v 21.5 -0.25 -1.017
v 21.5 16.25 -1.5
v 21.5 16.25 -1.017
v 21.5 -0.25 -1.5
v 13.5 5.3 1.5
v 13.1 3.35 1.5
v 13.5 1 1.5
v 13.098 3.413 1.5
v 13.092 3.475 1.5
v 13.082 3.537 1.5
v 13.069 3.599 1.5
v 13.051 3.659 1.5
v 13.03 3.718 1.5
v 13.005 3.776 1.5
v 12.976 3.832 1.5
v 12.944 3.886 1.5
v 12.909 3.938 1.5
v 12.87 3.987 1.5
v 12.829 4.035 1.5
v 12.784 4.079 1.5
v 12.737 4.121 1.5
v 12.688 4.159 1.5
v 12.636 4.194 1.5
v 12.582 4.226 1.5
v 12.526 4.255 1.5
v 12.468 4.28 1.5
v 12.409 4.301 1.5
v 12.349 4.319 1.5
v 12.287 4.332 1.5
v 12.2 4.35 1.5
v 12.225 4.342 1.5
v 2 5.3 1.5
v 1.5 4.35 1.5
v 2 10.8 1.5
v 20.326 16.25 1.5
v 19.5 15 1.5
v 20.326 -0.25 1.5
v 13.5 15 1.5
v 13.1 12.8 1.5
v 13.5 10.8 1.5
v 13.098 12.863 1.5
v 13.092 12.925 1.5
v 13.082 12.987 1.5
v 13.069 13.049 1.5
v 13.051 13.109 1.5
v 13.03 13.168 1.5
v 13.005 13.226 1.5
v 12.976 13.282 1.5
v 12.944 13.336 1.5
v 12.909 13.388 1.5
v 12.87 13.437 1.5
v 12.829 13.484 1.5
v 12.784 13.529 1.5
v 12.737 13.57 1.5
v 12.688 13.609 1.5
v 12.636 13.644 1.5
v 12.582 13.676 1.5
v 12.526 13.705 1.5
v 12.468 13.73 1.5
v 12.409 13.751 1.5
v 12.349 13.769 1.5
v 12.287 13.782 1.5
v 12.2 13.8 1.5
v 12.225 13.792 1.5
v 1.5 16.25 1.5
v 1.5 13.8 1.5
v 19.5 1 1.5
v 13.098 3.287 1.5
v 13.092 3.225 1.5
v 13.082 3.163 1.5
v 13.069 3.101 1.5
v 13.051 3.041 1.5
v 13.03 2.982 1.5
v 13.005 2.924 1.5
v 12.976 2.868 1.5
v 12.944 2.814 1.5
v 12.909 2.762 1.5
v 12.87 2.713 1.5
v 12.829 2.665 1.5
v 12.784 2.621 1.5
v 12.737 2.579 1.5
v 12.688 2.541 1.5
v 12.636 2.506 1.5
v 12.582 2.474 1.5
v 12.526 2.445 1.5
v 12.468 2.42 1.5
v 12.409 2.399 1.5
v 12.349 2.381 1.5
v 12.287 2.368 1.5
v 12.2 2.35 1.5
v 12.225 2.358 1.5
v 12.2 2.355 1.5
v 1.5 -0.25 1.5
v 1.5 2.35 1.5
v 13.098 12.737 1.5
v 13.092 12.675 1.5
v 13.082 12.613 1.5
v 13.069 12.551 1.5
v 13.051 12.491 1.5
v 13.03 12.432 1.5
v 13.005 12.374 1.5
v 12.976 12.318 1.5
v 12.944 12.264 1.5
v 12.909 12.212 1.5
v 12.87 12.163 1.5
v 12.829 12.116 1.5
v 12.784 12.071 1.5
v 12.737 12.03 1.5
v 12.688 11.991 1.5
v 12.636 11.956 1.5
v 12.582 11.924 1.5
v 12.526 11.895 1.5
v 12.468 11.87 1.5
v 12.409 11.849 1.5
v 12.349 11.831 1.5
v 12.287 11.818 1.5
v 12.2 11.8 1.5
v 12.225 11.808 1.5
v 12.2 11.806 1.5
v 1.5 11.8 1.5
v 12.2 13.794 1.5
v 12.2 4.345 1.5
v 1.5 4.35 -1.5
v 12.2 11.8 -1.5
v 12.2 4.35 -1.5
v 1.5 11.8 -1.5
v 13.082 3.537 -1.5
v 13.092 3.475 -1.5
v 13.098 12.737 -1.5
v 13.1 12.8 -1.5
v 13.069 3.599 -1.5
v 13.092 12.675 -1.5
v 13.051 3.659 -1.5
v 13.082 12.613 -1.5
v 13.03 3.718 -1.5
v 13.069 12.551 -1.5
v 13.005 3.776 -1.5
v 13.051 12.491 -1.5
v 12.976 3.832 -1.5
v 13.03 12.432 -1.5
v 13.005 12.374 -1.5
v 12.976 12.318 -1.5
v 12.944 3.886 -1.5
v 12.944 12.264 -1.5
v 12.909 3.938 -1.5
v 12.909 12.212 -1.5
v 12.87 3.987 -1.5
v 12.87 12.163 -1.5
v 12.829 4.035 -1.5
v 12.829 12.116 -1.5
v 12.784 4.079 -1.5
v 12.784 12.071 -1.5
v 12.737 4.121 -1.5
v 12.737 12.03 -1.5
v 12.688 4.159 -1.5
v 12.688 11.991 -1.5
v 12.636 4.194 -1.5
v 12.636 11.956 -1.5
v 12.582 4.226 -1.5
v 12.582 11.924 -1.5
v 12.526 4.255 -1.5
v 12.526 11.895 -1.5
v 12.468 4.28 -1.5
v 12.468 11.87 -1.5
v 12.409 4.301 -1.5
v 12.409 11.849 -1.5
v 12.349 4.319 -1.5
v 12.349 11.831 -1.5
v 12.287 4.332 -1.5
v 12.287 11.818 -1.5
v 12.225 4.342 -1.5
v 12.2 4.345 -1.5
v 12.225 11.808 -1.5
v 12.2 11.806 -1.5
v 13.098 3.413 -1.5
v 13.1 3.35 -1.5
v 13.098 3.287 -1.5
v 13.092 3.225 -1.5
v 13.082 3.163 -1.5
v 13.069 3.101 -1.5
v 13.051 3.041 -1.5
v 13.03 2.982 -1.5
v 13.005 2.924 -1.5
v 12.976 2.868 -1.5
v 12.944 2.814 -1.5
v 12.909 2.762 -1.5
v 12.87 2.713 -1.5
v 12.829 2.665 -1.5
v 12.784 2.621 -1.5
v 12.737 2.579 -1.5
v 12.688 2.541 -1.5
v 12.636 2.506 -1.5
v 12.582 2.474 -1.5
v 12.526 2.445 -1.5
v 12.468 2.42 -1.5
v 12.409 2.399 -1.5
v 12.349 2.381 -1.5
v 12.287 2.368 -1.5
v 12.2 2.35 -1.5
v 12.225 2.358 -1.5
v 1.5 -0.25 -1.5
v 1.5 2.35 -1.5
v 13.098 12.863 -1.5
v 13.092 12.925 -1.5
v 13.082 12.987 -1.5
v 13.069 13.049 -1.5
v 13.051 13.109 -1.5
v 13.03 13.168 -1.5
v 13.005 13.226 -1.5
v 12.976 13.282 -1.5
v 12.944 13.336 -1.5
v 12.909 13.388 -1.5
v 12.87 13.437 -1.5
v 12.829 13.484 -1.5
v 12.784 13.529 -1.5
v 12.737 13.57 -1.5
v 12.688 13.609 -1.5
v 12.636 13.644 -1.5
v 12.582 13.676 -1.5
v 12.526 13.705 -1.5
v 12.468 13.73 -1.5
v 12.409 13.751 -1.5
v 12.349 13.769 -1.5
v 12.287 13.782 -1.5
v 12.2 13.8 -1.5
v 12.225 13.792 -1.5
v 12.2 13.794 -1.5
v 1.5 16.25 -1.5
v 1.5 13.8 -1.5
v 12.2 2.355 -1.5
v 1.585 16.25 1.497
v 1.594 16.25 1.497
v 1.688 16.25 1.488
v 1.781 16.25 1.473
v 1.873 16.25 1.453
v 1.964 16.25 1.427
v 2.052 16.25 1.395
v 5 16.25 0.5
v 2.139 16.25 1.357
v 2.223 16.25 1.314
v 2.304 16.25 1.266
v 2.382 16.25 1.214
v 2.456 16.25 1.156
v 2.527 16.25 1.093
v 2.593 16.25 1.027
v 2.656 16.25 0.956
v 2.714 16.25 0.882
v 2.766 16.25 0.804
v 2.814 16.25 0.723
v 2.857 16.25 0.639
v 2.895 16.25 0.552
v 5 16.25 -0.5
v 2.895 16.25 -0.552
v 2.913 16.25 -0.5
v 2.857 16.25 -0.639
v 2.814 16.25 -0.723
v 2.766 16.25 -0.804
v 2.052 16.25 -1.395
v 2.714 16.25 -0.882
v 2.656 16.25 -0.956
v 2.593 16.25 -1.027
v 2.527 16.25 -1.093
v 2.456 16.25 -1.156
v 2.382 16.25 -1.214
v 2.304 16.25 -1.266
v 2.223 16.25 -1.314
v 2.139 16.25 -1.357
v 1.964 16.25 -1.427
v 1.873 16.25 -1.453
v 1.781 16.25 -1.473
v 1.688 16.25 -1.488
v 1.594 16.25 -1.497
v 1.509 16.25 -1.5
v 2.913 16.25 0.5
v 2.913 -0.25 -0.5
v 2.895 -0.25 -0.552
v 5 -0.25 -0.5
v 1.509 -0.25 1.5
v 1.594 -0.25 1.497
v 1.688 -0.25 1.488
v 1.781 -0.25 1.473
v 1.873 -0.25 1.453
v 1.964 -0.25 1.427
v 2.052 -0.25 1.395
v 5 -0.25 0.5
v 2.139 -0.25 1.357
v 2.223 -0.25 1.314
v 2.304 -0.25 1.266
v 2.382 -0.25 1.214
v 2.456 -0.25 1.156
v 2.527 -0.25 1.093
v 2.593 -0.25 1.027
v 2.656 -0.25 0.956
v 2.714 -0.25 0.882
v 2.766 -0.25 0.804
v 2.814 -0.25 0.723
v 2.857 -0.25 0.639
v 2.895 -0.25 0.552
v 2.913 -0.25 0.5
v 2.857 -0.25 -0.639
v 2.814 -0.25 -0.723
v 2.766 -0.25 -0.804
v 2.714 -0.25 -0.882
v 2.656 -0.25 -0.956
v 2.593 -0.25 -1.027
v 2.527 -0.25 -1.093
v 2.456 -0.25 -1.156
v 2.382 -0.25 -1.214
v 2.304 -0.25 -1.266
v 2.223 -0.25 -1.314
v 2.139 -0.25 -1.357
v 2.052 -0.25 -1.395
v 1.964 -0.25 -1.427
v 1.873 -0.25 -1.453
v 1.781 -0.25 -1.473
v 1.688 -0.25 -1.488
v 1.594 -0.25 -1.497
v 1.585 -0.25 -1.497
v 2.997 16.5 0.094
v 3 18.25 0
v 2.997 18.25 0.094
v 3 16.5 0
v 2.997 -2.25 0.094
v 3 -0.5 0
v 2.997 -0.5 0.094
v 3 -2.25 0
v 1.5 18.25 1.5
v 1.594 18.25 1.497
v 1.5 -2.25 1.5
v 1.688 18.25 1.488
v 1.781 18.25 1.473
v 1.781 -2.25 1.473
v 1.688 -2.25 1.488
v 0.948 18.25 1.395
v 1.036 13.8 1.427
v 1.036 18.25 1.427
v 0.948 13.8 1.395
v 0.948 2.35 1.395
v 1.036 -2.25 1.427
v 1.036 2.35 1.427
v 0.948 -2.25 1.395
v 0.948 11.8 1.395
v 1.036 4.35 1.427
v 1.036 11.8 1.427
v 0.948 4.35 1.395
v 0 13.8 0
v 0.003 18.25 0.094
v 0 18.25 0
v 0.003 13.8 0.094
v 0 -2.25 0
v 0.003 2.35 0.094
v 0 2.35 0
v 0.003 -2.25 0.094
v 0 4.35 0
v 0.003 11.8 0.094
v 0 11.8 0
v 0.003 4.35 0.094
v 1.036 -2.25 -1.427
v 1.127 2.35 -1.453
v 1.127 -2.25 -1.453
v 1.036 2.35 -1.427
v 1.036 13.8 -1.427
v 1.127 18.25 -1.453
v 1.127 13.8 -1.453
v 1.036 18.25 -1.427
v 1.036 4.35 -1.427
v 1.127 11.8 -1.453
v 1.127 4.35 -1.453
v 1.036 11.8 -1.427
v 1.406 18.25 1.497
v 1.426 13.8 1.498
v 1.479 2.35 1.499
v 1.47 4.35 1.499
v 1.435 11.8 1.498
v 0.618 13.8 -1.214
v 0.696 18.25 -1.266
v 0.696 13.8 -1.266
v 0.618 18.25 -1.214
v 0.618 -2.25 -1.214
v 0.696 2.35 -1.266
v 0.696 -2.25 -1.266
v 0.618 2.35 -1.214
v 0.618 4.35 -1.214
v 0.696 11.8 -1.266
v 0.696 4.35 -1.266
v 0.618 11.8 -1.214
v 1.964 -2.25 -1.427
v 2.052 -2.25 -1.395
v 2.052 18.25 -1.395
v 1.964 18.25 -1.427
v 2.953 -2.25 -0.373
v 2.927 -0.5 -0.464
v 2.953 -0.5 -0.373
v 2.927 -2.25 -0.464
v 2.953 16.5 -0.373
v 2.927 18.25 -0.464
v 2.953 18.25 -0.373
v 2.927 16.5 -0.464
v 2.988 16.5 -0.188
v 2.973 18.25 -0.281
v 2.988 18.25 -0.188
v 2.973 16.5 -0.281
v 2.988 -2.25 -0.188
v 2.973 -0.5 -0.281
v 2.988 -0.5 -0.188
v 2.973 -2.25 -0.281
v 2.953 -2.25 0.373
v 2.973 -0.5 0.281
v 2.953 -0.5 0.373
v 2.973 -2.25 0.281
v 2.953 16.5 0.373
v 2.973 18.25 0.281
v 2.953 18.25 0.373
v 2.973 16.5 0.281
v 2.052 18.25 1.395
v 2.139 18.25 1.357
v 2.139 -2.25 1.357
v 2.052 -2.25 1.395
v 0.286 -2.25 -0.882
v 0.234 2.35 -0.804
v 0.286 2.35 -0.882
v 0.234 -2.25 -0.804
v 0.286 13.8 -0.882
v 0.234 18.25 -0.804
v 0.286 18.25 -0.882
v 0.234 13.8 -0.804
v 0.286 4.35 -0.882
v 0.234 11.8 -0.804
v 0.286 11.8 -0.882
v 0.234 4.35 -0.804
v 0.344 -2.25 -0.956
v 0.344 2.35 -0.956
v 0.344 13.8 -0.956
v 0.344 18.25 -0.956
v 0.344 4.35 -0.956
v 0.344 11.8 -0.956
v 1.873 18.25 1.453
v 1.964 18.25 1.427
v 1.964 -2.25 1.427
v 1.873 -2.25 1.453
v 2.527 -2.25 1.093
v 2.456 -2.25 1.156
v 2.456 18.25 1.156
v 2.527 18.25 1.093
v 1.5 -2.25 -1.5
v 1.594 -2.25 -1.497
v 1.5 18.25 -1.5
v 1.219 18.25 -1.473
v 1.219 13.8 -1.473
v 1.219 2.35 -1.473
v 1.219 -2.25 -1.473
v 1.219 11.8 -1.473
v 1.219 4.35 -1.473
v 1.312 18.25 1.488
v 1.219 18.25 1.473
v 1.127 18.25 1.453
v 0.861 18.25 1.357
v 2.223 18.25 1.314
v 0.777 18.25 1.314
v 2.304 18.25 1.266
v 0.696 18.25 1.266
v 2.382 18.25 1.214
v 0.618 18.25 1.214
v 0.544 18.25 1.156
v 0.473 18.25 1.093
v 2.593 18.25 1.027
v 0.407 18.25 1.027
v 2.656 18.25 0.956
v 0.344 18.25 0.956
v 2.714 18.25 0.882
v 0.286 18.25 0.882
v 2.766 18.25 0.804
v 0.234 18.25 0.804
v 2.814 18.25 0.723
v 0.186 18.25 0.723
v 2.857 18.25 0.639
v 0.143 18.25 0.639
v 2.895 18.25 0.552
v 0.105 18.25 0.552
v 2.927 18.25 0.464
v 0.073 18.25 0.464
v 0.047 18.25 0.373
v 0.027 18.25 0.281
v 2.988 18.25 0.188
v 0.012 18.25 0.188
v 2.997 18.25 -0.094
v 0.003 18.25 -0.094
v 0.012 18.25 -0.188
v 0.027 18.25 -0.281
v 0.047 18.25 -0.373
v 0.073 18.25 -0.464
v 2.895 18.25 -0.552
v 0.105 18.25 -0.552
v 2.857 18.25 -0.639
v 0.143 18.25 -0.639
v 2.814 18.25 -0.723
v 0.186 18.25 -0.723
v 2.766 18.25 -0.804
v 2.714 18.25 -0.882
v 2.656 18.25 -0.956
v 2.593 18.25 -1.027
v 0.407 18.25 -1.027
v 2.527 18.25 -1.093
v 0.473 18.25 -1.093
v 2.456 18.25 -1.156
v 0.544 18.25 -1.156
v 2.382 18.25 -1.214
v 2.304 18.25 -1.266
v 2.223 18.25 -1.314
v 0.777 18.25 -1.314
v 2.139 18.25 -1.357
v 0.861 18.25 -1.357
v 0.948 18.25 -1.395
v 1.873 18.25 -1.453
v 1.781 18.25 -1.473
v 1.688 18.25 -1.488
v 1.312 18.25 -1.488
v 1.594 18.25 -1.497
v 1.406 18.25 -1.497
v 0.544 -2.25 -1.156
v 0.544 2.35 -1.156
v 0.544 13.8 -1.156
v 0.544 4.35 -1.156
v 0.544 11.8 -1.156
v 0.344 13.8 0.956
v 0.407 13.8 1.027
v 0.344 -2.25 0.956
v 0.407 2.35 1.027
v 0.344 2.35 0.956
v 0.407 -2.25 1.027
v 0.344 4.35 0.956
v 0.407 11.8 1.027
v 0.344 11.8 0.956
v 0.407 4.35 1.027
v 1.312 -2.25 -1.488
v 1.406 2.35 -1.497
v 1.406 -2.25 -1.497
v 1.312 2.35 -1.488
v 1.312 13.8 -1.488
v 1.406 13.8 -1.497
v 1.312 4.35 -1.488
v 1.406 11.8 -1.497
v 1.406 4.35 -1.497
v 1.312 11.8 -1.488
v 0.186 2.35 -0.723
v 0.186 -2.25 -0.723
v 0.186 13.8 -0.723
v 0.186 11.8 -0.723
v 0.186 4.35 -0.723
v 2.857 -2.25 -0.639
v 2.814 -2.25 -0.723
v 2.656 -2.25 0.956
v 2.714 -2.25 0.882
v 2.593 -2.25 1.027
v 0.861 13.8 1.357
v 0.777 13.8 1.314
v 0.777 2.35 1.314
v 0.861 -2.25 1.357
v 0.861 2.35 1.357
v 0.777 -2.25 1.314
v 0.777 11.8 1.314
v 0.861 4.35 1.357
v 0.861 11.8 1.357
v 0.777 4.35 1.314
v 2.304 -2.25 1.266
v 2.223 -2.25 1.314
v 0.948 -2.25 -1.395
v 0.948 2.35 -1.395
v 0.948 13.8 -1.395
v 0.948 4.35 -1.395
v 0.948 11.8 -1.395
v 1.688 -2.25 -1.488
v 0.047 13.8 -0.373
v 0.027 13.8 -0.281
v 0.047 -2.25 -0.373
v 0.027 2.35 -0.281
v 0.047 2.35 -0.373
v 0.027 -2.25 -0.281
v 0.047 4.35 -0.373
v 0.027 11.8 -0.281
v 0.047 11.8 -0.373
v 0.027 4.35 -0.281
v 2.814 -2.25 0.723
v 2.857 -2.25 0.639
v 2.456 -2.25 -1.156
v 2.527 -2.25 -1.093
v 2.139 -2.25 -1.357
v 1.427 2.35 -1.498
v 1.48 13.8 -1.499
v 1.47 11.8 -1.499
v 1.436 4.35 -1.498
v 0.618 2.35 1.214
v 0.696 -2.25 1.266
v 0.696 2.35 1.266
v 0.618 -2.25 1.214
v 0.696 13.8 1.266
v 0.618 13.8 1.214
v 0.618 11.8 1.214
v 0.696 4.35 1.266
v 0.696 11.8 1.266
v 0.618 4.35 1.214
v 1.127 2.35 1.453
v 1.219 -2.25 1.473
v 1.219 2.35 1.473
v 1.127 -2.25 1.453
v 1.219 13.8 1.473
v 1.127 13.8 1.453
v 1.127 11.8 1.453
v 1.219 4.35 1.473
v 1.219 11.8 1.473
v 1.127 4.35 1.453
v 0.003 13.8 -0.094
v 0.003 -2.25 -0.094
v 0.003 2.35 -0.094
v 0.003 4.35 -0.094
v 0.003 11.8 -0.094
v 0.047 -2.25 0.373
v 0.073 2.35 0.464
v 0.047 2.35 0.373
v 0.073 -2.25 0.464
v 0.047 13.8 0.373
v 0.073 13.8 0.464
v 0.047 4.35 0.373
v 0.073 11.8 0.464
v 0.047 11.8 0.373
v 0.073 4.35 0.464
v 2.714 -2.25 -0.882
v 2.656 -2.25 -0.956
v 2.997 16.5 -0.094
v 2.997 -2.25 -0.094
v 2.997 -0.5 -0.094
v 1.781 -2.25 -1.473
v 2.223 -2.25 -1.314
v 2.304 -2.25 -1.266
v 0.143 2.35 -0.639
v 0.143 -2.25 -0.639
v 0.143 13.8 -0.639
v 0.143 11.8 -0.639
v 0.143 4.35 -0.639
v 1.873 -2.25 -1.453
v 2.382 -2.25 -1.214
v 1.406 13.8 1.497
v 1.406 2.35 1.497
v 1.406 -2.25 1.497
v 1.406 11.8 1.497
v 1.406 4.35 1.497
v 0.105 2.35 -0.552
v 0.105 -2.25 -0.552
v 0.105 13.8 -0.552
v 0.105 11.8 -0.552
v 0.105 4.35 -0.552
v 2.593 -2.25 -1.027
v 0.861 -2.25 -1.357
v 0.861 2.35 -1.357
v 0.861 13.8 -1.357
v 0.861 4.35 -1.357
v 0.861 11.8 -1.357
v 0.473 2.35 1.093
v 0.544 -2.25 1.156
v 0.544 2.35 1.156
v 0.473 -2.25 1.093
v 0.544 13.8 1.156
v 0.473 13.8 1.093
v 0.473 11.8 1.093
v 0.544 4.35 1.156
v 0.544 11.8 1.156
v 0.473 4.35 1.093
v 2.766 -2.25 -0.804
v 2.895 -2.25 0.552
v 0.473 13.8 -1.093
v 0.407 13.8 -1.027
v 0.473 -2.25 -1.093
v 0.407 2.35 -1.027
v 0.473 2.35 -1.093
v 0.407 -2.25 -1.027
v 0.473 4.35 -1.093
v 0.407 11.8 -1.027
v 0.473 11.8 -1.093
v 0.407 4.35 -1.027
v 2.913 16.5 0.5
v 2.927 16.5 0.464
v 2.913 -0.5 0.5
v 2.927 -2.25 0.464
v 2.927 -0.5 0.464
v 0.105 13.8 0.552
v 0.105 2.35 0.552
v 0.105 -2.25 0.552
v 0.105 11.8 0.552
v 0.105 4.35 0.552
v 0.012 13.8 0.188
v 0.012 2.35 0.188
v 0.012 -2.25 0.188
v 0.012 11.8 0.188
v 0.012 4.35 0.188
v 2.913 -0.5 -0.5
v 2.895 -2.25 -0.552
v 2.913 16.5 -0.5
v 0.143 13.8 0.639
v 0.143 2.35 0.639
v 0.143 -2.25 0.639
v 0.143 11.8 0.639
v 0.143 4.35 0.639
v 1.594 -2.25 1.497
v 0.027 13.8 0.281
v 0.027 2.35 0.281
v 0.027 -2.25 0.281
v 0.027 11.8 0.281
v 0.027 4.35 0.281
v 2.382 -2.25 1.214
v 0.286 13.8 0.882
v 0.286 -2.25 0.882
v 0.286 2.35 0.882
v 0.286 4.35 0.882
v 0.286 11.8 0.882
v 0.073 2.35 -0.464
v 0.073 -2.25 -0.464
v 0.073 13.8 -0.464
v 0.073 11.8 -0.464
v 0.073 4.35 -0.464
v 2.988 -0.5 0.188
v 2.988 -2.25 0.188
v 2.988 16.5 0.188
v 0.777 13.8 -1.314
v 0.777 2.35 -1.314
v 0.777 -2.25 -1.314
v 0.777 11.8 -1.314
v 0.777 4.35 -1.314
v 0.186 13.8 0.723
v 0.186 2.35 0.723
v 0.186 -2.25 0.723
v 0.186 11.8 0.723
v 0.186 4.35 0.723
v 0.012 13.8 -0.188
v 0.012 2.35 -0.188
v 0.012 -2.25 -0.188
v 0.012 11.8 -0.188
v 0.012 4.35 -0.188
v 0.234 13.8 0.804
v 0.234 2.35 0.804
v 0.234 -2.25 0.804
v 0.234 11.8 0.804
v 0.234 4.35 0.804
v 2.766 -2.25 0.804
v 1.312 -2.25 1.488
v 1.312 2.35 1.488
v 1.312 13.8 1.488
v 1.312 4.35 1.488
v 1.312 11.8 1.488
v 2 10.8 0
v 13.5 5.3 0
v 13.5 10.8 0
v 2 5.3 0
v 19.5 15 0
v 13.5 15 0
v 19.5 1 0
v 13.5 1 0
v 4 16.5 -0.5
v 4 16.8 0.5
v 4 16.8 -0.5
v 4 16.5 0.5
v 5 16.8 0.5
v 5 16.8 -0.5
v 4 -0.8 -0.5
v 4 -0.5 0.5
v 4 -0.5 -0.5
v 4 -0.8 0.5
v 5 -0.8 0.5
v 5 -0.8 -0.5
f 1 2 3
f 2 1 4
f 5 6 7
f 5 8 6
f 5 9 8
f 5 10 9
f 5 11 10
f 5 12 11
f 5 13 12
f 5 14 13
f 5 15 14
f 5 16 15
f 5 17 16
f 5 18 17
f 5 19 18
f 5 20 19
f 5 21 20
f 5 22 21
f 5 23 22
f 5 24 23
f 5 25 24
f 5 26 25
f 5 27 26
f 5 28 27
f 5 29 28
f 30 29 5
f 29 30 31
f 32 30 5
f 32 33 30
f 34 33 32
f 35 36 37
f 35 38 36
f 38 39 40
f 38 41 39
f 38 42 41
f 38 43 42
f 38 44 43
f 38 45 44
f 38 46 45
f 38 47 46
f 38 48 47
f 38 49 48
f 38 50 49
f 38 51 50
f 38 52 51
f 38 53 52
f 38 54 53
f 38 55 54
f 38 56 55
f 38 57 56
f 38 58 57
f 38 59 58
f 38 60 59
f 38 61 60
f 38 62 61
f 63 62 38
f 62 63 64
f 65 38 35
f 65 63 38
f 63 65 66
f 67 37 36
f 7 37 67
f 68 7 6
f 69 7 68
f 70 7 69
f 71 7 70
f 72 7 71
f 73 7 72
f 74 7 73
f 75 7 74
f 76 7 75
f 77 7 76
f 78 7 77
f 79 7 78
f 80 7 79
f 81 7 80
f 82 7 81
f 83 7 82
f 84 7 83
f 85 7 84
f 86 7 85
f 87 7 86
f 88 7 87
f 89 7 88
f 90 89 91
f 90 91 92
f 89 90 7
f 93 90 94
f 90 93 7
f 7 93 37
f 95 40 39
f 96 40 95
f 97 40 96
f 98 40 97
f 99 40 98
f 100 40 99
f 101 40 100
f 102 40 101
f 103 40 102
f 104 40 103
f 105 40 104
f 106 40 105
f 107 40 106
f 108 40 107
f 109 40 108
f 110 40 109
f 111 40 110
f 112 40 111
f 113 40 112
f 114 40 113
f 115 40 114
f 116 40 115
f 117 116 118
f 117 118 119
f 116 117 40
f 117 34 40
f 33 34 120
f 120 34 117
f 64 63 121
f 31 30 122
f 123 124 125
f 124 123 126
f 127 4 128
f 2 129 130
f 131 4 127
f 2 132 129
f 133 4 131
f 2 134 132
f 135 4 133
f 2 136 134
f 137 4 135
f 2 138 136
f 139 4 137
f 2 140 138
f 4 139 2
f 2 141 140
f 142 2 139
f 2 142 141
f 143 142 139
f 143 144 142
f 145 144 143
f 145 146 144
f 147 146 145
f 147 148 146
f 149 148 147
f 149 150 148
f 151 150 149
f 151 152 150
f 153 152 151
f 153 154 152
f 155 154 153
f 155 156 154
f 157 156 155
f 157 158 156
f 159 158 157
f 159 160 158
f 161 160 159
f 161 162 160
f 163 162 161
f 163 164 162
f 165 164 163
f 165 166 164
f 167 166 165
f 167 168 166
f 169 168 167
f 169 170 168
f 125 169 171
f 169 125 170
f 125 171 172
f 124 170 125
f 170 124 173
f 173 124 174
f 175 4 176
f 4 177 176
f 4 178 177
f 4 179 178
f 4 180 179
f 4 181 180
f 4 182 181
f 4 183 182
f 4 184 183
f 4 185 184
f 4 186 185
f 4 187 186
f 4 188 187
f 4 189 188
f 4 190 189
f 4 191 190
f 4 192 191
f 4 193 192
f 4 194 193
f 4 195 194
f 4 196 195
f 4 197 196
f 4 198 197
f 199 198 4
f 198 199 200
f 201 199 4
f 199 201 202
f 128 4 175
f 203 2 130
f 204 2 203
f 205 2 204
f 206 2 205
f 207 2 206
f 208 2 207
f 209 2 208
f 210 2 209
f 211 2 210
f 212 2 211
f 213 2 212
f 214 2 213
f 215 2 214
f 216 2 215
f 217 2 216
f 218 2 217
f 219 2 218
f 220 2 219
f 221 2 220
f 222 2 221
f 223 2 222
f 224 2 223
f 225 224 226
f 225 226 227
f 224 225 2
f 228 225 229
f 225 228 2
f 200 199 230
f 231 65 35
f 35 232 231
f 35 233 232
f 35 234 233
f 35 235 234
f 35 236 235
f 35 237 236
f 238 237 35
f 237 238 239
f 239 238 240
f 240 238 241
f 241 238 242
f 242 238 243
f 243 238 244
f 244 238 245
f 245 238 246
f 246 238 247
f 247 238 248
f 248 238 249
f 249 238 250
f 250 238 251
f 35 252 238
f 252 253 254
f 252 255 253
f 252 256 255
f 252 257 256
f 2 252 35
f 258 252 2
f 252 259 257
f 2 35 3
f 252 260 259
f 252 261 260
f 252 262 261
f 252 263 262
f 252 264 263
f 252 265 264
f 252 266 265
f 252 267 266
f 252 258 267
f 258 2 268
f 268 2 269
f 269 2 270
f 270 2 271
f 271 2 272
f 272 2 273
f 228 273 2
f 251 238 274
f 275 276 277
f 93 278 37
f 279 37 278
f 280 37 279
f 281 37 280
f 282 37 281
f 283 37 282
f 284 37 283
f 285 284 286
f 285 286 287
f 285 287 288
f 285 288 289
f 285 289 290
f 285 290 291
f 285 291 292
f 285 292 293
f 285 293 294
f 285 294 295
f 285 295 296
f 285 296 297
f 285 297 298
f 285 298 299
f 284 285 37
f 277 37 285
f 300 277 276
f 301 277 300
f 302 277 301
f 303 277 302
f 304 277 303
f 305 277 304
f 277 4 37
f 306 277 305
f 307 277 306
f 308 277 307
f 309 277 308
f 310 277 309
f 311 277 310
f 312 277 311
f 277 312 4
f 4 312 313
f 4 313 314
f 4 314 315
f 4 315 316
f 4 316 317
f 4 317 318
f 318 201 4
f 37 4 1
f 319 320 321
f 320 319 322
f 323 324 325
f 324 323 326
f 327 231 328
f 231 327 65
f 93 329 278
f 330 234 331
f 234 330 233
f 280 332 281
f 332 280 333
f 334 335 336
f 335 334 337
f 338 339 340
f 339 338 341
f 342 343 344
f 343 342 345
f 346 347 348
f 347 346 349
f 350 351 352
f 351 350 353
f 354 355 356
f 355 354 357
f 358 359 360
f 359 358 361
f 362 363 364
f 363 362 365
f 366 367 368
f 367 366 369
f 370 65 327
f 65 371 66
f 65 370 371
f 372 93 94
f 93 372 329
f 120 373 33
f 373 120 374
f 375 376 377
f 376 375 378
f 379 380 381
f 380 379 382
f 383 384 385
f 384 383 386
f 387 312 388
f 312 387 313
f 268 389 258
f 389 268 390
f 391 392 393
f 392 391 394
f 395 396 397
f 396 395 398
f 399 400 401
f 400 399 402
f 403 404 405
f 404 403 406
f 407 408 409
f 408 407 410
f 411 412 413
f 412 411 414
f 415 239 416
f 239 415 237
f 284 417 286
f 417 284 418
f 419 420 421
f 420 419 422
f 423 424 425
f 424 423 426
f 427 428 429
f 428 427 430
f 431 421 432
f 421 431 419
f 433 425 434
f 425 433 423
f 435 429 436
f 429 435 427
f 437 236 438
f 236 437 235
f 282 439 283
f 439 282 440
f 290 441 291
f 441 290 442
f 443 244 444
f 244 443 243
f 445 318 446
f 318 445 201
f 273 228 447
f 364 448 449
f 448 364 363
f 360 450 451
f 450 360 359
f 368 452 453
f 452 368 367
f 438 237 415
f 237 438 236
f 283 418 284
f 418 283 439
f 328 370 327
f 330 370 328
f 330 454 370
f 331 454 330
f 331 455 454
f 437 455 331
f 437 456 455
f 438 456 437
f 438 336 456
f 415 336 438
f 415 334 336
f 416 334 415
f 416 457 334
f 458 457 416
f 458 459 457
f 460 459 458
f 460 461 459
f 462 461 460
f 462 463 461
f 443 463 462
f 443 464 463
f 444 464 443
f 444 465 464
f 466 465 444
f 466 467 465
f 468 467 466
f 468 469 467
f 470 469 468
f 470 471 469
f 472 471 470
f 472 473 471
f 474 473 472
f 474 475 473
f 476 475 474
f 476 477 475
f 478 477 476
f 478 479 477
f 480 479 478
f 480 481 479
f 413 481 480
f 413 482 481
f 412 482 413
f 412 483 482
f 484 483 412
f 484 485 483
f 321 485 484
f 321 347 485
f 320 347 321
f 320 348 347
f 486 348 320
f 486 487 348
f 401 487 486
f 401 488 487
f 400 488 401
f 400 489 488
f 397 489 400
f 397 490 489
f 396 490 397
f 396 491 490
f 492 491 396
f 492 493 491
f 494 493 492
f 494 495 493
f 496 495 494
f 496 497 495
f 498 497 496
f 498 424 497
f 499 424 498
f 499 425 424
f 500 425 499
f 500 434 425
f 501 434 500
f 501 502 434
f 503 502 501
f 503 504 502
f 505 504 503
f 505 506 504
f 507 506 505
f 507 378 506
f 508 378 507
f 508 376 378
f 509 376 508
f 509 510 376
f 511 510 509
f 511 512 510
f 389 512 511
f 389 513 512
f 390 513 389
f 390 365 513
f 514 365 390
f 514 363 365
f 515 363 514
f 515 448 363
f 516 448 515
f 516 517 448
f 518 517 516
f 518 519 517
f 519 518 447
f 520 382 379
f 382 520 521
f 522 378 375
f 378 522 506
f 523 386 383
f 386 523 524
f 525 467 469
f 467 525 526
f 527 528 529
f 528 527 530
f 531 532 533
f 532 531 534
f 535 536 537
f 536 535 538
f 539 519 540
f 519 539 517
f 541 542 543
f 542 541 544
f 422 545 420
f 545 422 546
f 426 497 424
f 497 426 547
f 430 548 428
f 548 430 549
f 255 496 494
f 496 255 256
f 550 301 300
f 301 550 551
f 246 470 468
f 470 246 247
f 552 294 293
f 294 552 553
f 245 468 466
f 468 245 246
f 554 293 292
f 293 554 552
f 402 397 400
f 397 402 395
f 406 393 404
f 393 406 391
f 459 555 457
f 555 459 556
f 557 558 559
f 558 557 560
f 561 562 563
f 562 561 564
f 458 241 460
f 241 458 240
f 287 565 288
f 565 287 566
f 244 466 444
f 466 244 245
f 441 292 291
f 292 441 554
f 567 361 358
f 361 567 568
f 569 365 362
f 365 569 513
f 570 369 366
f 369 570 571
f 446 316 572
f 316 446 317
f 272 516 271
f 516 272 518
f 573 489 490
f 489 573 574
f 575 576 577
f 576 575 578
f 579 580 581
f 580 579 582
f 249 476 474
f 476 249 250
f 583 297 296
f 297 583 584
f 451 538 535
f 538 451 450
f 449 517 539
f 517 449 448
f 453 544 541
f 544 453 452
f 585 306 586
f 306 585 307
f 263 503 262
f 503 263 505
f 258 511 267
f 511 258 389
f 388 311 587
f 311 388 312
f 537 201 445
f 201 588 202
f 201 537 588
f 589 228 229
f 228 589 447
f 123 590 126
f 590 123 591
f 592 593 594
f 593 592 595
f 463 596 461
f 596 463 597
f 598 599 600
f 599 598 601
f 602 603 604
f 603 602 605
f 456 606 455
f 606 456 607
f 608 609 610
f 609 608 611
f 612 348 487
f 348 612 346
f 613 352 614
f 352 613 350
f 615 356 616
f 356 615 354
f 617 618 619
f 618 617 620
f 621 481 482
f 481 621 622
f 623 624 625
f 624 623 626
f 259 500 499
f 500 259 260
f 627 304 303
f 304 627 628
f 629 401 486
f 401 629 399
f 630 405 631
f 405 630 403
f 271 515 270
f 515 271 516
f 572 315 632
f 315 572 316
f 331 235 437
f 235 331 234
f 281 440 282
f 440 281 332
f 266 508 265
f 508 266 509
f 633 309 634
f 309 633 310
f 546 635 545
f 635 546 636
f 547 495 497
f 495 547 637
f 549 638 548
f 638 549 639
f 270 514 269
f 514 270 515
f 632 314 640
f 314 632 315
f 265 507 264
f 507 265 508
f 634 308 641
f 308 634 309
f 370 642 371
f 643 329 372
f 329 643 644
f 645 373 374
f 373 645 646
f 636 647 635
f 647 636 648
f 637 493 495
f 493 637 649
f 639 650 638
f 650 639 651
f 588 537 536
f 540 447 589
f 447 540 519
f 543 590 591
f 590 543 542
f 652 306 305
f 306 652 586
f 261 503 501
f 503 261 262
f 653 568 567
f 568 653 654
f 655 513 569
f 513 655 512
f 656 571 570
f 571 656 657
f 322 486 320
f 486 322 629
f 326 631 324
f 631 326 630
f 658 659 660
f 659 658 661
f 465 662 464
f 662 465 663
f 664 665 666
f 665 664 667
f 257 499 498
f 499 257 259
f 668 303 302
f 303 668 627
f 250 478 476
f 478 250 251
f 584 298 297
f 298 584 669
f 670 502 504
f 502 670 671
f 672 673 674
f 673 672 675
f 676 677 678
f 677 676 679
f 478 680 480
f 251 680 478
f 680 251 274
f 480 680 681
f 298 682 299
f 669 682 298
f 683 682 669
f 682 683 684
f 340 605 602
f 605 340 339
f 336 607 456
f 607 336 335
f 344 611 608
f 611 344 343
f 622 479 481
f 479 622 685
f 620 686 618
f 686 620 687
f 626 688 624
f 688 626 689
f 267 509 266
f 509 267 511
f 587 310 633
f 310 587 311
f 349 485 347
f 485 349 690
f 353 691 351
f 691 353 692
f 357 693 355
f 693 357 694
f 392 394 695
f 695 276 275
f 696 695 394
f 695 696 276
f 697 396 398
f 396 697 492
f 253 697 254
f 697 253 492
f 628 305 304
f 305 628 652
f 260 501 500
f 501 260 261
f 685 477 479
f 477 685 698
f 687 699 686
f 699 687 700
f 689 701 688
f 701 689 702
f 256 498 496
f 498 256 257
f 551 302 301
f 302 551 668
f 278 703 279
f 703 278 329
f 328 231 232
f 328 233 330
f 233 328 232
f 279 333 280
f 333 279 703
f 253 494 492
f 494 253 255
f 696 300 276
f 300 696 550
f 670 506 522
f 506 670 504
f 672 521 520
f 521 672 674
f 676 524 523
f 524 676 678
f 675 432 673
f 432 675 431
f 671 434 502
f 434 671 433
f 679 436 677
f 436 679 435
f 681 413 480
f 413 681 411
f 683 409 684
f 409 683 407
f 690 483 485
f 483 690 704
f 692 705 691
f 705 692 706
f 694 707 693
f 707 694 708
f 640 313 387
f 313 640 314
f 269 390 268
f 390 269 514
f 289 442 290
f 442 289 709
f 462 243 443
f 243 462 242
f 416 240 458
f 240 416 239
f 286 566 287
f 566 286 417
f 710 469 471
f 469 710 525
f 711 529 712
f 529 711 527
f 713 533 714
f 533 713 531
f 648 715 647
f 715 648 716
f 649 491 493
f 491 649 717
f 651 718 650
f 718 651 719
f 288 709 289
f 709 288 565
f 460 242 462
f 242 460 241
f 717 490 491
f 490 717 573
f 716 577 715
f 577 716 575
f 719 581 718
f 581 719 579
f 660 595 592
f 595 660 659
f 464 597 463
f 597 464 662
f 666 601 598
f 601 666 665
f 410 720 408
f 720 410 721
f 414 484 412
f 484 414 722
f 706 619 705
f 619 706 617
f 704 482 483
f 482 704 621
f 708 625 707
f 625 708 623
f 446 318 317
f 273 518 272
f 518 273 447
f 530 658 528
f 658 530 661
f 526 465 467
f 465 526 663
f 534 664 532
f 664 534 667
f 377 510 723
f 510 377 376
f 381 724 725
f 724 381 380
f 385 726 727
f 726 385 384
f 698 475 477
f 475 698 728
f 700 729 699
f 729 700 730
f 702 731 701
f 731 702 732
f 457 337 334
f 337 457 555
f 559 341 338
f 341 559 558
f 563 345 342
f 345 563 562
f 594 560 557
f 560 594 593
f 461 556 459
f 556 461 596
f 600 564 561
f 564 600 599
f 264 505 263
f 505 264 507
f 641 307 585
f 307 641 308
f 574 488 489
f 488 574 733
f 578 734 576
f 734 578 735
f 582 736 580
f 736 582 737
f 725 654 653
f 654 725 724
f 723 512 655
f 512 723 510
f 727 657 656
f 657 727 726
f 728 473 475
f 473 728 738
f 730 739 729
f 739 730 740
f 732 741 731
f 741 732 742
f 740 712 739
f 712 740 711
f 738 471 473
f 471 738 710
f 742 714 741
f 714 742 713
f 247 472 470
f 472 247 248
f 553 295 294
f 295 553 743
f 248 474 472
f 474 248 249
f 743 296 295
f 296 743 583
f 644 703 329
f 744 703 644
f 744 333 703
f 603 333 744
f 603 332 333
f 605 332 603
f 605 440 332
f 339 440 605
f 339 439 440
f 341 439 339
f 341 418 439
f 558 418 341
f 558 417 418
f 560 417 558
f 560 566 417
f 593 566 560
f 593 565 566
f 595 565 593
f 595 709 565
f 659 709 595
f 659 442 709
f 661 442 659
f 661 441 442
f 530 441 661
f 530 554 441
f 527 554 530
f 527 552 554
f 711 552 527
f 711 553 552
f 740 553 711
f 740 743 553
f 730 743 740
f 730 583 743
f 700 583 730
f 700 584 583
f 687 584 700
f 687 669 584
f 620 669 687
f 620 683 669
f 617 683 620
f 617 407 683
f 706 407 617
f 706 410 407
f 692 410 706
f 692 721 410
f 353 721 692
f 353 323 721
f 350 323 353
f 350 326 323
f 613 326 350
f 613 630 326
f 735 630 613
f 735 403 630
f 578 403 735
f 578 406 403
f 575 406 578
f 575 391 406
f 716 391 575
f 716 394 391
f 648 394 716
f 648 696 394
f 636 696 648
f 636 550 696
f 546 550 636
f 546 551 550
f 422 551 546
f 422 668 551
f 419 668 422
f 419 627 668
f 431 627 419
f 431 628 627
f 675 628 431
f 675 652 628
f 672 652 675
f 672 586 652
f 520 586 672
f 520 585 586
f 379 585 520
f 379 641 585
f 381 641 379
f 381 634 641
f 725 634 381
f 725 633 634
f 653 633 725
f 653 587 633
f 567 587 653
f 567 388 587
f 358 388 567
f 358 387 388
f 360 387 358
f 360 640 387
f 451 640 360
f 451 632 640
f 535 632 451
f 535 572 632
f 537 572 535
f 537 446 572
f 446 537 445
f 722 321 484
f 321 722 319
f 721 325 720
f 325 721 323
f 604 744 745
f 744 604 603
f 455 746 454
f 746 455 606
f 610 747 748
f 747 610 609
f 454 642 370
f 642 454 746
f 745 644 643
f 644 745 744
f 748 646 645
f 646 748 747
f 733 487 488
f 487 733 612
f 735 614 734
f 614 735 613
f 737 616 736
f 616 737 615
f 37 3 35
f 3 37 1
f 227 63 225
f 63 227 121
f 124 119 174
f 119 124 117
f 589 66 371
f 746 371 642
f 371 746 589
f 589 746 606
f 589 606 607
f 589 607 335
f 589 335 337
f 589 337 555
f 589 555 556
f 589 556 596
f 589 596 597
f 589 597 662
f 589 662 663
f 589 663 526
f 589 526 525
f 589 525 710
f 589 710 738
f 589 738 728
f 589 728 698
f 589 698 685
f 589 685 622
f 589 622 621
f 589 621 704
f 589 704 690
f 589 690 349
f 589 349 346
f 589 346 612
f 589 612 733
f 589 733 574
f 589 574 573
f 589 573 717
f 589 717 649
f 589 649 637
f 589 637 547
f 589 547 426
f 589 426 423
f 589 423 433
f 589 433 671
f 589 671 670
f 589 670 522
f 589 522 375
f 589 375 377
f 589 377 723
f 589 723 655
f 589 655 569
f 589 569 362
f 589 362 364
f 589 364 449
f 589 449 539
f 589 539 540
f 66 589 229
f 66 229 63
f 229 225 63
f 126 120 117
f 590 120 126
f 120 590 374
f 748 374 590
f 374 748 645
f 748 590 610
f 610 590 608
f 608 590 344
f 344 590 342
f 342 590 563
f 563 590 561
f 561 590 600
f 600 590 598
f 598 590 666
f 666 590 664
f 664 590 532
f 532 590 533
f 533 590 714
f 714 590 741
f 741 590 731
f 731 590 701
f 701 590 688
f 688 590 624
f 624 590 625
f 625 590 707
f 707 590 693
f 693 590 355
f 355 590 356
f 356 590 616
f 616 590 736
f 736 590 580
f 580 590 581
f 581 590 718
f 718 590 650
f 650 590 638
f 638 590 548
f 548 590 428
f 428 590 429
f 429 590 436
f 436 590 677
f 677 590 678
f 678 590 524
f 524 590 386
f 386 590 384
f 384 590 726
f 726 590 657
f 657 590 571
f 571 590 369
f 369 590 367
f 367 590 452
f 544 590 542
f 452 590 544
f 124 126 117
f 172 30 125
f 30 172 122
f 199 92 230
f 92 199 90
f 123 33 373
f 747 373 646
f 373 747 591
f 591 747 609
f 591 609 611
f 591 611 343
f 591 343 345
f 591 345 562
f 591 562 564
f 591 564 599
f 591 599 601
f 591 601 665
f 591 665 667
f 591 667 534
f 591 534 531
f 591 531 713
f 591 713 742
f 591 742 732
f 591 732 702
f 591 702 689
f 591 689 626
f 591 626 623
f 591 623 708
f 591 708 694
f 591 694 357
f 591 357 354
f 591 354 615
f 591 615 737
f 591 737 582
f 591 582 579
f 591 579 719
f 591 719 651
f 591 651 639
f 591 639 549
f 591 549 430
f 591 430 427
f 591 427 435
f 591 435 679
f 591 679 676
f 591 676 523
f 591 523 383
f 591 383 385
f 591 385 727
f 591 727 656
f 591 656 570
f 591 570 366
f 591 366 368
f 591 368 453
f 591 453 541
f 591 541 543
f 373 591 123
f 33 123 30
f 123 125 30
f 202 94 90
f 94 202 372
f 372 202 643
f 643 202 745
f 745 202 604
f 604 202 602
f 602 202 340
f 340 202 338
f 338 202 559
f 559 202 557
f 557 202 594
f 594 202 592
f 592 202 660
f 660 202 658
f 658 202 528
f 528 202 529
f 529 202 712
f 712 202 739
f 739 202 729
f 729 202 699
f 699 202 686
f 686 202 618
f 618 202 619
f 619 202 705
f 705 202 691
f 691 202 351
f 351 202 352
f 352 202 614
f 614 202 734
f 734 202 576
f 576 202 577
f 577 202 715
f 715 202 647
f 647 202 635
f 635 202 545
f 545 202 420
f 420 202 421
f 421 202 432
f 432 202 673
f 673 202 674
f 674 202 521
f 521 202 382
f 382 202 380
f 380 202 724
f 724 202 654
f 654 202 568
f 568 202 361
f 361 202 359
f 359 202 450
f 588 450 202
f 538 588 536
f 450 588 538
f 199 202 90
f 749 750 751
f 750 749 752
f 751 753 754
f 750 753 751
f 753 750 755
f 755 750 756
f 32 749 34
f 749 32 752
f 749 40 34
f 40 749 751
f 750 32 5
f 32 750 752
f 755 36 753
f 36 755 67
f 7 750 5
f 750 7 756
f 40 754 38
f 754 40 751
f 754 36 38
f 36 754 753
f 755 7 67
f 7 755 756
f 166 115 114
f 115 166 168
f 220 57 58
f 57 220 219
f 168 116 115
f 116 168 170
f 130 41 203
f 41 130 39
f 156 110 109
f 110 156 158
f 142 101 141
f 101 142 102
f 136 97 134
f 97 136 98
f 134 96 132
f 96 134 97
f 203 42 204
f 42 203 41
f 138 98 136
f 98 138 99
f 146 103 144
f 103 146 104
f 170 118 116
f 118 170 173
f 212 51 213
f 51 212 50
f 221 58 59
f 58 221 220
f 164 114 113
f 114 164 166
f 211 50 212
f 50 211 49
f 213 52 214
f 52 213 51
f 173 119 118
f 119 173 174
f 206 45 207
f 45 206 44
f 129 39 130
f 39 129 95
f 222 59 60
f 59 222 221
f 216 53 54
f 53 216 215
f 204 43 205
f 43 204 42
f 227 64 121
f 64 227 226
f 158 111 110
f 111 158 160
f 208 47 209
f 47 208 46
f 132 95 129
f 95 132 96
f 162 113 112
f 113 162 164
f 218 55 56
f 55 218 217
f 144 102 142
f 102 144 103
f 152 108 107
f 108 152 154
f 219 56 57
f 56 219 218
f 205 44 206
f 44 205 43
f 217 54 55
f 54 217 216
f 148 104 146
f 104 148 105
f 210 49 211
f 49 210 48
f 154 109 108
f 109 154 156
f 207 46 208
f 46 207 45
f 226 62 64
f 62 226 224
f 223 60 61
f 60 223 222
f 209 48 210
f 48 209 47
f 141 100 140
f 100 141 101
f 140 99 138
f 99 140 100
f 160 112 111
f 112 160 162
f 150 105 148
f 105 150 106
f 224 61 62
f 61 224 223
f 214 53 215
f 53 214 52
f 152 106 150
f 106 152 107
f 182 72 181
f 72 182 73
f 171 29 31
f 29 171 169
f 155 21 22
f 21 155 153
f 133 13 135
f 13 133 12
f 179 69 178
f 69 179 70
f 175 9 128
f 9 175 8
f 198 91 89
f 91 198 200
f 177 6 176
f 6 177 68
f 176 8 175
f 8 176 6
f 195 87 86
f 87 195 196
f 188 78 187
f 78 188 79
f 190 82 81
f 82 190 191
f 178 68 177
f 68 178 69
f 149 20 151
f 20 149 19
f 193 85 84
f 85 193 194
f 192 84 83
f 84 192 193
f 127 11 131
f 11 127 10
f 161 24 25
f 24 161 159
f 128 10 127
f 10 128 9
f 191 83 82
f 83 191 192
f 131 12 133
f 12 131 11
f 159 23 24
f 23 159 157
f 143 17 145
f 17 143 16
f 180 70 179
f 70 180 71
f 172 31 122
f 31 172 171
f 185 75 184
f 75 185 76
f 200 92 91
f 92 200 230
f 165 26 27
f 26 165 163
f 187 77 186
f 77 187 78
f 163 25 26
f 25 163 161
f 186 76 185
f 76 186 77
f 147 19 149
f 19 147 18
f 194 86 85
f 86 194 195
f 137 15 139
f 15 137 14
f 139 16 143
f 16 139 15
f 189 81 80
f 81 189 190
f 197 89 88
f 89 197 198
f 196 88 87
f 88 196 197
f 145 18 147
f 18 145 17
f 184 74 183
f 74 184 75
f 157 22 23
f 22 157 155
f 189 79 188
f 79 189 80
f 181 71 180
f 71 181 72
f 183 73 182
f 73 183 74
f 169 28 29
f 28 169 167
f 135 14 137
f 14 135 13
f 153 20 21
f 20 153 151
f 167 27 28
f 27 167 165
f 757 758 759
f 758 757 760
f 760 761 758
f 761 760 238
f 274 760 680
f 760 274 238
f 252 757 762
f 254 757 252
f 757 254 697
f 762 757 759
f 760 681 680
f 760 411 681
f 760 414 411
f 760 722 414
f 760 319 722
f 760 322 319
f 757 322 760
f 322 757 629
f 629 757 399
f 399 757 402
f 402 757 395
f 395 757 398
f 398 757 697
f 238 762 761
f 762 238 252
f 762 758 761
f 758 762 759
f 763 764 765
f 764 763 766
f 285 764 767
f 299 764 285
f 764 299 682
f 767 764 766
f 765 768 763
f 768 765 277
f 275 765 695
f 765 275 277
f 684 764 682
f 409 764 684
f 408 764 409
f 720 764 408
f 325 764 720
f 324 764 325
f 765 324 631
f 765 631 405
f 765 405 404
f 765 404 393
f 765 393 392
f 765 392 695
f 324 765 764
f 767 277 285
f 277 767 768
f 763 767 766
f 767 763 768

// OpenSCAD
$fn=100;
difference(){
translate([11.5,8,0,]) {
cube([20,16.5,3], center = true);
    
translate([-10,0,0])
rotate([90,0,0])
cylinder(r=1.5,h=20.5, center = true);
}

//Ramp
translate([22.3,8,2])
rotate([0,65,0])
cube([5,17,4], center = true);

//translate([6.1,12.4,0])
//cube([12.2,1.9,6], center = true);

//translate([6.1,2.9,0])
//cube([12.2,1.9,6], center = true);

//Holes - Expansion fixed
//translate([6.1,13.25,0])
//cube([12.2,2,6], center = true);

//translate([6.1,2.9,0])
//cube([12.2,2,6], center = true);

//Holes - Expansion fixed - V2
translate([6.1,12.8,0])
cube([12.2,2,6], center = true);

translate([6.1,3.35,0])
cube([12.2,2,6], center = true);

//T hole in piece
translate([2,5.3,0])
cube([12,5.5,2]);

translate([13.5,1,0])
cube([6,14,2]);

//Holes
translate([12.1,12.8,0])
cylinder(r=1,h=5, center = true);

translate([12.1,3.35,0])
cylinder(r=1,h=5, center = true);


}

translate([1.9,15.5,-0.5])
cube([2.1,1,1]);

translate([4,15.8,-0.5])
cube([1,1,1]);

translate([1.9,-0.5,-0.5])
cube([2.1,1,1]);

translate([4,-0.8,-0.5])
cube([1,1,1]);

//translate([10,-0.1,0])
//rotate([0,90,0])
//cylinder(r=0.5,h=3, center = true);

//translate([4.3,16,0])
//rotate([-70,60,0])
//cylinder(1,1,0.5,$fn=3);

//2.9 + 2.9 + 6.9 = 12.7

//12.2

//translate([6.1,15.25,0])

//translate([2,5,1])
//cube([12,6,1]);


//translate([11.8,13.25,0])
//cylinder(r=1.1,h=5, center = true);
